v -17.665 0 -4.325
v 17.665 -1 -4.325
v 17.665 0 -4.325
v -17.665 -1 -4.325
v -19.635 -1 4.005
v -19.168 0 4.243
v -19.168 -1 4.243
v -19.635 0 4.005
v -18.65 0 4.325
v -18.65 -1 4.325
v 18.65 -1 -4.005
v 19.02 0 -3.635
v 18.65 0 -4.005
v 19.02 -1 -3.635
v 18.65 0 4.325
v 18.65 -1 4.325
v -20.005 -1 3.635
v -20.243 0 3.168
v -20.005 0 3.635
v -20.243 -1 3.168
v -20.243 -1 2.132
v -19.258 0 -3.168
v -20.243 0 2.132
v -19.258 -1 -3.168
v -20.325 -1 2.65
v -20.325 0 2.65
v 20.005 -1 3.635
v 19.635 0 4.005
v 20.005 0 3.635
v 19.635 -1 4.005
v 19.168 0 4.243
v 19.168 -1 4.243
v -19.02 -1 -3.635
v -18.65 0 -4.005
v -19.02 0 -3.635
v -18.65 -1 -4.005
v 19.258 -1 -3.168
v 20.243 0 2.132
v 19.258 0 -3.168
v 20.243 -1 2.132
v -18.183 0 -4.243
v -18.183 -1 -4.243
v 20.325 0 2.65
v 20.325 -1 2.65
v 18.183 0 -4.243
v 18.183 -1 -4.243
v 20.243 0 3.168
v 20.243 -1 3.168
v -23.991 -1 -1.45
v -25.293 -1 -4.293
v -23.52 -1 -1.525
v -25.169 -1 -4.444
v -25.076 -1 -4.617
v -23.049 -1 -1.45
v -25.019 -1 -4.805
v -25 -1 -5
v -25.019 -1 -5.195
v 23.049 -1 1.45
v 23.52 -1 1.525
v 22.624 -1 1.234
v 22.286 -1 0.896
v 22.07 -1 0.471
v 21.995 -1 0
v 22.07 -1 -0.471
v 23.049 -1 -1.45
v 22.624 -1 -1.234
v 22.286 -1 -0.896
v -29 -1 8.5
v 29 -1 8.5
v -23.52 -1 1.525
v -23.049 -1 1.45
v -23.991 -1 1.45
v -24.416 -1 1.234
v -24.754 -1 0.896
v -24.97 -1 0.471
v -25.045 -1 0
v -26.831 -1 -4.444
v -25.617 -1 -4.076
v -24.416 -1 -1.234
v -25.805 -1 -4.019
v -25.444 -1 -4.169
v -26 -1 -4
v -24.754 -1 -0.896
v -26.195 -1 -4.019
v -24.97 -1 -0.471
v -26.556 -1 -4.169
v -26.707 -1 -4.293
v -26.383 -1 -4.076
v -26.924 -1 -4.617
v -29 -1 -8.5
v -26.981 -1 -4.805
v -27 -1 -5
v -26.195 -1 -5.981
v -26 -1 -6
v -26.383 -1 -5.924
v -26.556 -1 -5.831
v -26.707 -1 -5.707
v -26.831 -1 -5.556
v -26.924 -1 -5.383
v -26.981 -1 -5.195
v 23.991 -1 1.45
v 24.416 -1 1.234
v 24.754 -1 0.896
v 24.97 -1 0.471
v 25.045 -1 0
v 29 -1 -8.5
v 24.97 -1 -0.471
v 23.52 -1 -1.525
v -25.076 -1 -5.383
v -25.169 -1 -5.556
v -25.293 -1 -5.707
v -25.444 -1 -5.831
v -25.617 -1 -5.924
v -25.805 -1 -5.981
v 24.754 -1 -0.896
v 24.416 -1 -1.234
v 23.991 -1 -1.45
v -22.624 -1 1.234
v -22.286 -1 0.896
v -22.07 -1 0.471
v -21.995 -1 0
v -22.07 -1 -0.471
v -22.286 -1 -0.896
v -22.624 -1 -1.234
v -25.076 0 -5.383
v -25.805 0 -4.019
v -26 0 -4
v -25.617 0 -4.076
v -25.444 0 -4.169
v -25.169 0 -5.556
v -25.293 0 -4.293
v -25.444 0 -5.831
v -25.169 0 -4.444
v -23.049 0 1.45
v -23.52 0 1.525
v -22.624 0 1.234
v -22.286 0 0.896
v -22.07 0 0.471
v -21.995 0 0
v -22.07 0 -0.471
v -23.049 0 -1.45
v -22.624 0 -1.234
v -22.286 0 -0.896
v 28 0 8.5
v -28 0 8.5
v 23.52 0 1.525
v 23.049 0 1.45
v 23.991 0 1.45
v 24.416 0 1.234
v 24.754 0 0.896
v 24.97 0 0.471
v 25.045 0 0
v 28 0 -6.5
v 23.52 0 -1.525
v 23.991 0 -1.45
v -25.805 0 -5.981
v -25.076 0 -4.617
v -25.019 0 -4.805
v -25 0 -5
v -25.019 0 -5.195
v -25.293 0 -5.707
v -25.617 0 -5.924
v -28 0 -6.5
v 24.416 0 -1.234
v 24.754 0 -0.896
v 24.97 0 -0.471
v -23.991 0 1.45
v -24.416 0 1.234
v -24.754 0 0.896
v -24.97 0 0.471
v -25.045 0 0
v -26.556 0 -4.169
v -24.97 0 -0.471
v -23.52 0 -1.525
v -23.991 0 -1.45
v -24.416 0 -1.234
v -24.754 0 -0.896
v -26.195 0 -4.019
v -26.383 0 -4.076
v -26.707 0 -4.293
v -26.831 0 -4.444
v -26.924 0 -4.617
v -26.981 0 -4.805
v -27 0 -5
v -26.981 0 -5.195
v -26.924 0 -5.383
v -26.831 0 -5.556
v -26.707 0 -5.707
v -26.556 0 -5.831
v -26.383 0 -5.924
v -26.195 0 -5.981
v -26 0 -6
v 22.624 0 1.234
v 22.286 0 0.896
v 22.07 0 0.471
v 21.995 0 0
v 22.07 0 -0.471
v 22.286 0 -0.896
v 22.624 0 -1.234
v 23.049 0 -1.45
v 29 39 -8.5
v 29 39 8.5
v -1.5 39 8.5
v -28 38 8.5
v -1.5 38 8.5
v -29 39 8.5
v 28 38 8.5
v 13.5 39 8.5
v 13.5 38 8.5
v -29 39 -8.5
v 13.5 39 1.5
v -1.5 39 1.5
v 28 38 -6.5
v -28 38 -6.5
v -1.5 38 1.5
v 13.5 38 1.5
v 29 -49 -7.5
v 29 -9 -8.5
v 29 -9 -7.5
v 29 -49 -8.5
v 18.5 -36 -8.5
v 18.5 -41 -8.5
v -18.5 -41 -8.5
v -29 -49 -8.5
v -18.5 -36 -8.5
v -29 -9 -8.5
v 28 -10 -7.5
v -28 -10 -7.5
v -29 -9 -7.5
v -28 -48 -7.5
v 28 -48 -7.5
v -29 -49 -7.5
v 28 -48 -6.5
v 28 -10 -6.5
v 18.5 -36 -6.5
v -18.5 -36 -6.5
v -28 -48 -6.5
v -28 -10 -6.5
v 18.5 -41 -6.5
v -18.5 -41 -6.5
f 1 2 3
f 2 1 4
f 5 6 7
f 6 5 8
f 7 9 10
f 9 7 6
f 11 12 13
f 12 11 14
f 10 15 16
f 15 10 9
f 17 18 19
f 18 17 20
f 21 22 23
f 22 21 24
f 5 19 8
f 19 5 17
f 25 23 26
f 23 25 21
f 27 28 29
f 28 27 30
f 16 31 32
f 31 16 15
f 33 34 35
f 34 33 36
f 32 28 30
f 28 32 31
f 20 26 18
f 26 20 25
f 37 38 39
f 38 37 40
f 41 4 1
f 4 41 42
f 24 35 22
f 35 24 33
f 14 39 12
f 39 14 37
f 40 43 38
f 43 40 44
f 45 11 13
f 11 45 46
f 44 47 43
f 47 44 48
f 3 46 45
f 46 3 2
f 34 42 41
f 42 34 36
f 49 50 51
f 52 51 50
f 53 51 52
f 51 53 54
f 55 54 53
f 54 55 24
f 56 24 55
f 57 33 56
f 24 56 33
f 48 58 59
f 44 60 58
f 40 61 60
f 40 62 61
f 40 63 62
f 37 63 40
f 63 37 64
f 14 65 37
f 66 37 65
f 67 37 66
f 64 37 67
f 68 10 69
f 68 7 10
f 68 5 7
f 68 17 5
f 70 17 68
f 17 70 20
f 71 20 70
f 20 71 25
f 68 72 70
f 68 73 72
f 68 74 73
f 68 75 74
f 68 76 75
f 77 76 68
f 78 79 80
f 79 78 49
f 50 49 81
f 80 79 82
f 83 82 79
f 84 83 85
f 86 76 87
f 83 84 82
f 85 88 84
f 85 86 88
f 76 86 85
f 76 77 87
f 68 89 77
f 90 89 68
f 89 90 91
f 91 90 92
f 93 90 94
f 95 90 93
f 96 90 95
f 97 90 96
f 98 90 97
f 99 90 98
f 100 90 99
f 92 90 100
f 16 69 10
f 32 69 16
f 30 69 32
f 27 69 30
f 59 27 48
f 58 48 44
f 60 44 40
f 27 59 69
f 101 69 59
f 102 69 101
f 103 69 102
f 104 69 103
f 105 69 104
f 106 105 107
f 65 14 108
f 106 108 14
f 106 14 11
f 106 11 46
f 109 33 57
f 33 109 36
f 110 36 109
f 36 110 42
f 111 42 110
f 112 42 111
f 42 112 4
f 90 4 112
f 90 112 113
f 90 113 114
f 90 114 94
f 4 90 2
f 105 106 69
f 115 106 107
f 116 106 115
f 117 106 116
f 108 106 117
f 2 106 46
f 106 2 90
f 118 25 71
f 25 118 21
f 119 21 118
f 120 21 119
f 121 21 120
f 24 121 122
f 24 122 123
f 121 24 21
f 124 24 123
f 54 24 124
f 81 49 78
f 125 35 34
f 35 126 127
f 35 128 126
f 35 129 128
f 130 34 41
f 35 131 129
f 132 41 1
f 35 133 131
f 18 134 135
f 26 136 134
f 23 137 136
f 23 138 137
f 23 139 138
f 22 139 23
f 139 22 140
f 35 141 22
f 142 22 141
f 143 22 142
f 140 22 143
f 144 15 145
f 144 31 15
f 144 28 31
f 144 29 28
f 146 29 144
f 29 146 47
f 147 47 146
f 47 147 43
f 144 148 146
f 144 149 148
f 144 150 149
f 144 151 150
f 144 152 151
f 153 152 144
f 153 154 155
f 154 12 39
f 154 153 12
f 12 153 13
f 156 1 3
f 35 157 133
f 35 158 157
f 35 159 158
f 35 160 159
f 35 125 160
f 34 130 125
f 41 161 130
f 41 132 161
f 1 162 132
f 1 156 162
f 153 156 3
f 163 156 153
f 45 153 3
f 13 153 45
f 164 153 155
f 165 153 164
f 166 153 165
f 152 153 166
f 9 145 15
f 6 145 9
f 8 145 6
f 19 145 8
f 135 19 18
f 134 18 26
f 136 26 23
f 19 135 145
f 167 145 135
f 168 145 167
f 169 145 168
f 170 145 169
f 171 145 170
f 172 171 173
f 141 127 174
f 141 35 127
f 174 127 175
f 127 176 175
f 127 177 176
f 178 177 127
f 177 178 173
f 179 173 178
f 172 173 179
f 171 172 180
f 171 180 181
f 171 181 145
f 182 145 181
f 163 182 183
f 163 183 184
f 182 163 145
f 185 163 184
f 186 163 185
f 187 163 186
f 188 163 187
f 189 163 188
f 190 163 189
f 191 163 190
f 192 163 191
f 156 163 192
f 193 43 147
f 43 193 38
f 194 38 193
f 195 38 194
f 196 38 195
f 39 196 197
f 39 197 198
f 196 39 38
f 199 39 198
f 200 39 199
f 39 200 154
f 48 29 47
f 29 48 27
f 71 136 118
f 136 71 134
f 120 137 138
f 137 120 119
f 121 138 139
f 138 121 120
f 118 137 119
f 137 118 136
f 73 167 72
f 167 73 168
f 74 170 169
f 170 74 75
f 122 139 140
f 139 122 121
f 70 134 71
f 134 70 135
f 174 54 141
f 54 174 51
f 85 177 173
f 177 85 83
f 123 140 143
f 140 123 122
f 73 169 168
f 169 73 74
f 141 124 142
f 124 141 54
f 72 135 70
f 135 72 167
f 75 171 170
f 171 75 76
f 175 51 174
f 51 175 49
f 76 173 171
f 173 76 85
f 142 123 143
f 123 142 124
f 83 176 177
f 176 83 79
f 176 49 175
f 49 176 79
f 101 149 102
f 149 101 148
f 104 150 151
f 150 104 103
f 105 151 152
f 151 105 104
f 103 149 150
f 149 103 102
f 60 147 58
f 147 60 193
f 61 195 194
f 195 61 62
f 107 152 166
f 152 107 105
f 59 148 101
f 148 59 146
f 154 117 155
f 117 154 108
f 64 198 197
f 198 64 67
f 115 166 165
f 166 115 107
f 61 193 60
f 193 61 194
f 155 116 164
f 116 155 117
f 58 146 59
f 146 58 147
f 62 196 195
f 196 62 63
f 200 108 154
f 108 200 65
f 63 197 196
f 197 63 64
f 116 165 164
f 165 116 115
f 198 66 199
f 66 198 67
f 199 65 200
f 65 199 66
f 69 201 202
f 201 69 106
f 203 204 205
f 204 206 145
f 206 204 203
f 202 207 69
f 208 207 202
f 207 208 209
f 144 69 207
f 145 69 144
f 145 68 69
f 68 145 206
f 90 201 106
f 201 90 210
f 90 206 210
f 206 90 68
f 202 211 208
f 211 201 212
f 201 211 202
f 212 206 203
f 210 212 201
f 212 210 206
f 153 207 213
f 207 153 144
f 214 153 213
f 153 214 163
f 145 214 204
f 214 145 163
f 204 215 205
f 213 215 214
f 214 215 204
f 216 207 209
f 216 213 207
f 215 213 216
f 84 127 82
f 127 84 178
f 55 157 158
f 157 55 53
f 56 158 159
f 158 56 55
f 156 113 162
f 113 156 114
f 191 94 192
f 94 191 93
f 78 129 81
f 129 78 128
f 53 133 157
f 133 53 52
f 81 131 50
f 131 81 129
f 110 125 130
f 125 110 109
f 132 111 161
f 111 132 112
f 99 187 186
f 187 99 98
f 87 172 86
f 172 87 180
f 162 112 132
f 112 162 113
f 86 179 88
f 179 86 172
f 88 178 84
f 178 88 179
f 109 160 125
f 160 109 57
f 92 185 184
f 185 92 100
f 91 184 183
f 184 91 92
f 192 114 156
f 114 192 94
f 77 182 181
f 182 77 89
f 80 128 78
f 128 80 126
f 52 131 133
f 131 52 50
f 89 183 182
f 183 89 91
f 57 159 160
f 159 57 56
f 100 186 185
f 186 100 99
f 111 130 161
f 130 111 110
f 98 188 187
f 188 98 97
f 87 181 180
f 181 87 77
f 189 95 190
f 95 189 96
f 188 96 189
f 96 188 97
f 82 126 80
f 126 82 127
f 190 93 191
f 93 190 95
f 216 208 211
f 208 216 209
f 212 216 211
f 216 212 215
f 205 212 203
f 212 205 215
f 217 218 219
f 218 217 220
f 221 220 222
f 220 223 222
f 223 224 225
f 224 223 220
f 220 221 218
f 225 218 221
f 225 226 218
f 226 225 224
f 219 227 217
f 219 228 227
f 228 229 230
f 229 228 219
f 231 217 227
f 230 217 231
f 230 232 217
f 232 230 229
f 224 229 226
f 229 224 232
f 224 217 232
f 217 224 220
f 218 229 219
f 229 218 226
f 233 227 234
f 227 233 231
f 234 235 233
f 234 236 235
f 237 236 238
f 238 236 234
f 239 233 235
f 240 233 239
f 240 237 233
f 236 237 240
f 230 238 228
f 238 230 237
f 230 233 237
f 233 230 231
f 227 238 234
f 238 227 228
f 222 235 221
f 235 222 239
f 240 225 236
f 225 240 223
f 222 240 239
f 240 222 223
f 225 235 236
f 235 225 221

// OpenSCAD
module dsub() {
    $fn=20;

    function db_conn_table(idx) =
    // b, d, f, k
    idx == "db9F" ? [12.50,11.10,6.53,2.11] :
    idx == "db9R" ? [12.50,11.10,5.72,3.35] :
    idx == "db15F" ? [16.66,15.27,6.53,2.11] :
    idx == "db15R" ? [16.66,15.27,5.72,3.35] :
    idx == "db25F" ? [23.52,22.15,6.53,2.11] :
    idx == "db25R" ? [23.52,22.0,6.0,3.35] :
    idx == "db37F" ? [31.75,29.54,6.53,2.11] :
    idx == "db37R" ? [31.75,29.54,5.72,3.35] :
    idx == "db50F" ? [30.56,29.19,7.93,2.11] :
    idx == "db50R" ? [30.56,28.17,7.06,3.35] :
    "Error";

    conn = "db25R";

    conn_dimensions = db_conn_table(conn);
    if(conn_dimensions == "Error") {
    echo(str("connector not found"));
    }

    b = db_conn_table(conn)[0];
    d = db_conn_table(conn)[1];
    f = db_conn_table(conn)[2];
    k = db_conn_table(conn)[3];

    //b = 16.66;
    //d = 14.40;
    //f = 5.72;
    //k = 3.35;

    cut_angle = 10;
    mounting_hole = 3.05;

    hull(){
    //Upper Left
    translate([-(d-k),(f-k),0])
    cylinder(1, d=k, center=false);
    //Upper Right
    translate([(d-k),(f-k),0])
    cylinder(h=1, d=k);
    //Lower Left
    translate([-(d-k)+cos(cut_angle),-(f-k),0])
    cylinder(h=1, d=k);
    //Lower Right
    translate([(d-k)-cos(cut_angle),-(f-k),0])
    cylinder(h=1, d=k);
    }

    // Mounting Holes
    translate([-b,0,0])
    cylinder(h=1, d=mounting_hole);
    translate([b,0,0])
    cylinder(h=1, d=mounting_hole);
}



difference() {
    translate([0, 19, 0]) {
        cube([58, 40, 17], center=true);
    }

    translate([0, 19, 2]) {
        cube([58-2, 40-2, 17], center=true);
    }

    rotate([90, 0, 0]) {
        dsub();
    }
    translate([-26, 5, -5]) {
        rotate([90, 0, 0]) {
            cylinder(d=2, h=10, $fn=32);
        }
    }
    translate([6, 40, 6]) {
        cube([15, 15, 9], center=true);
    }
}

rotate([180, 0, 0]) {

    difference() {
        union() {
            translate([0, 29, 8]) {
                cube([58, 40, 1], center=true);
            }
            translate([0, 29, 8-1]) {
                cube([58-2, 40-2, 1], center=true);
            }
        }
        translate([0, 38.5, 8]) {
            cube([37, 5, 10], center=true);
        }
    }


}
